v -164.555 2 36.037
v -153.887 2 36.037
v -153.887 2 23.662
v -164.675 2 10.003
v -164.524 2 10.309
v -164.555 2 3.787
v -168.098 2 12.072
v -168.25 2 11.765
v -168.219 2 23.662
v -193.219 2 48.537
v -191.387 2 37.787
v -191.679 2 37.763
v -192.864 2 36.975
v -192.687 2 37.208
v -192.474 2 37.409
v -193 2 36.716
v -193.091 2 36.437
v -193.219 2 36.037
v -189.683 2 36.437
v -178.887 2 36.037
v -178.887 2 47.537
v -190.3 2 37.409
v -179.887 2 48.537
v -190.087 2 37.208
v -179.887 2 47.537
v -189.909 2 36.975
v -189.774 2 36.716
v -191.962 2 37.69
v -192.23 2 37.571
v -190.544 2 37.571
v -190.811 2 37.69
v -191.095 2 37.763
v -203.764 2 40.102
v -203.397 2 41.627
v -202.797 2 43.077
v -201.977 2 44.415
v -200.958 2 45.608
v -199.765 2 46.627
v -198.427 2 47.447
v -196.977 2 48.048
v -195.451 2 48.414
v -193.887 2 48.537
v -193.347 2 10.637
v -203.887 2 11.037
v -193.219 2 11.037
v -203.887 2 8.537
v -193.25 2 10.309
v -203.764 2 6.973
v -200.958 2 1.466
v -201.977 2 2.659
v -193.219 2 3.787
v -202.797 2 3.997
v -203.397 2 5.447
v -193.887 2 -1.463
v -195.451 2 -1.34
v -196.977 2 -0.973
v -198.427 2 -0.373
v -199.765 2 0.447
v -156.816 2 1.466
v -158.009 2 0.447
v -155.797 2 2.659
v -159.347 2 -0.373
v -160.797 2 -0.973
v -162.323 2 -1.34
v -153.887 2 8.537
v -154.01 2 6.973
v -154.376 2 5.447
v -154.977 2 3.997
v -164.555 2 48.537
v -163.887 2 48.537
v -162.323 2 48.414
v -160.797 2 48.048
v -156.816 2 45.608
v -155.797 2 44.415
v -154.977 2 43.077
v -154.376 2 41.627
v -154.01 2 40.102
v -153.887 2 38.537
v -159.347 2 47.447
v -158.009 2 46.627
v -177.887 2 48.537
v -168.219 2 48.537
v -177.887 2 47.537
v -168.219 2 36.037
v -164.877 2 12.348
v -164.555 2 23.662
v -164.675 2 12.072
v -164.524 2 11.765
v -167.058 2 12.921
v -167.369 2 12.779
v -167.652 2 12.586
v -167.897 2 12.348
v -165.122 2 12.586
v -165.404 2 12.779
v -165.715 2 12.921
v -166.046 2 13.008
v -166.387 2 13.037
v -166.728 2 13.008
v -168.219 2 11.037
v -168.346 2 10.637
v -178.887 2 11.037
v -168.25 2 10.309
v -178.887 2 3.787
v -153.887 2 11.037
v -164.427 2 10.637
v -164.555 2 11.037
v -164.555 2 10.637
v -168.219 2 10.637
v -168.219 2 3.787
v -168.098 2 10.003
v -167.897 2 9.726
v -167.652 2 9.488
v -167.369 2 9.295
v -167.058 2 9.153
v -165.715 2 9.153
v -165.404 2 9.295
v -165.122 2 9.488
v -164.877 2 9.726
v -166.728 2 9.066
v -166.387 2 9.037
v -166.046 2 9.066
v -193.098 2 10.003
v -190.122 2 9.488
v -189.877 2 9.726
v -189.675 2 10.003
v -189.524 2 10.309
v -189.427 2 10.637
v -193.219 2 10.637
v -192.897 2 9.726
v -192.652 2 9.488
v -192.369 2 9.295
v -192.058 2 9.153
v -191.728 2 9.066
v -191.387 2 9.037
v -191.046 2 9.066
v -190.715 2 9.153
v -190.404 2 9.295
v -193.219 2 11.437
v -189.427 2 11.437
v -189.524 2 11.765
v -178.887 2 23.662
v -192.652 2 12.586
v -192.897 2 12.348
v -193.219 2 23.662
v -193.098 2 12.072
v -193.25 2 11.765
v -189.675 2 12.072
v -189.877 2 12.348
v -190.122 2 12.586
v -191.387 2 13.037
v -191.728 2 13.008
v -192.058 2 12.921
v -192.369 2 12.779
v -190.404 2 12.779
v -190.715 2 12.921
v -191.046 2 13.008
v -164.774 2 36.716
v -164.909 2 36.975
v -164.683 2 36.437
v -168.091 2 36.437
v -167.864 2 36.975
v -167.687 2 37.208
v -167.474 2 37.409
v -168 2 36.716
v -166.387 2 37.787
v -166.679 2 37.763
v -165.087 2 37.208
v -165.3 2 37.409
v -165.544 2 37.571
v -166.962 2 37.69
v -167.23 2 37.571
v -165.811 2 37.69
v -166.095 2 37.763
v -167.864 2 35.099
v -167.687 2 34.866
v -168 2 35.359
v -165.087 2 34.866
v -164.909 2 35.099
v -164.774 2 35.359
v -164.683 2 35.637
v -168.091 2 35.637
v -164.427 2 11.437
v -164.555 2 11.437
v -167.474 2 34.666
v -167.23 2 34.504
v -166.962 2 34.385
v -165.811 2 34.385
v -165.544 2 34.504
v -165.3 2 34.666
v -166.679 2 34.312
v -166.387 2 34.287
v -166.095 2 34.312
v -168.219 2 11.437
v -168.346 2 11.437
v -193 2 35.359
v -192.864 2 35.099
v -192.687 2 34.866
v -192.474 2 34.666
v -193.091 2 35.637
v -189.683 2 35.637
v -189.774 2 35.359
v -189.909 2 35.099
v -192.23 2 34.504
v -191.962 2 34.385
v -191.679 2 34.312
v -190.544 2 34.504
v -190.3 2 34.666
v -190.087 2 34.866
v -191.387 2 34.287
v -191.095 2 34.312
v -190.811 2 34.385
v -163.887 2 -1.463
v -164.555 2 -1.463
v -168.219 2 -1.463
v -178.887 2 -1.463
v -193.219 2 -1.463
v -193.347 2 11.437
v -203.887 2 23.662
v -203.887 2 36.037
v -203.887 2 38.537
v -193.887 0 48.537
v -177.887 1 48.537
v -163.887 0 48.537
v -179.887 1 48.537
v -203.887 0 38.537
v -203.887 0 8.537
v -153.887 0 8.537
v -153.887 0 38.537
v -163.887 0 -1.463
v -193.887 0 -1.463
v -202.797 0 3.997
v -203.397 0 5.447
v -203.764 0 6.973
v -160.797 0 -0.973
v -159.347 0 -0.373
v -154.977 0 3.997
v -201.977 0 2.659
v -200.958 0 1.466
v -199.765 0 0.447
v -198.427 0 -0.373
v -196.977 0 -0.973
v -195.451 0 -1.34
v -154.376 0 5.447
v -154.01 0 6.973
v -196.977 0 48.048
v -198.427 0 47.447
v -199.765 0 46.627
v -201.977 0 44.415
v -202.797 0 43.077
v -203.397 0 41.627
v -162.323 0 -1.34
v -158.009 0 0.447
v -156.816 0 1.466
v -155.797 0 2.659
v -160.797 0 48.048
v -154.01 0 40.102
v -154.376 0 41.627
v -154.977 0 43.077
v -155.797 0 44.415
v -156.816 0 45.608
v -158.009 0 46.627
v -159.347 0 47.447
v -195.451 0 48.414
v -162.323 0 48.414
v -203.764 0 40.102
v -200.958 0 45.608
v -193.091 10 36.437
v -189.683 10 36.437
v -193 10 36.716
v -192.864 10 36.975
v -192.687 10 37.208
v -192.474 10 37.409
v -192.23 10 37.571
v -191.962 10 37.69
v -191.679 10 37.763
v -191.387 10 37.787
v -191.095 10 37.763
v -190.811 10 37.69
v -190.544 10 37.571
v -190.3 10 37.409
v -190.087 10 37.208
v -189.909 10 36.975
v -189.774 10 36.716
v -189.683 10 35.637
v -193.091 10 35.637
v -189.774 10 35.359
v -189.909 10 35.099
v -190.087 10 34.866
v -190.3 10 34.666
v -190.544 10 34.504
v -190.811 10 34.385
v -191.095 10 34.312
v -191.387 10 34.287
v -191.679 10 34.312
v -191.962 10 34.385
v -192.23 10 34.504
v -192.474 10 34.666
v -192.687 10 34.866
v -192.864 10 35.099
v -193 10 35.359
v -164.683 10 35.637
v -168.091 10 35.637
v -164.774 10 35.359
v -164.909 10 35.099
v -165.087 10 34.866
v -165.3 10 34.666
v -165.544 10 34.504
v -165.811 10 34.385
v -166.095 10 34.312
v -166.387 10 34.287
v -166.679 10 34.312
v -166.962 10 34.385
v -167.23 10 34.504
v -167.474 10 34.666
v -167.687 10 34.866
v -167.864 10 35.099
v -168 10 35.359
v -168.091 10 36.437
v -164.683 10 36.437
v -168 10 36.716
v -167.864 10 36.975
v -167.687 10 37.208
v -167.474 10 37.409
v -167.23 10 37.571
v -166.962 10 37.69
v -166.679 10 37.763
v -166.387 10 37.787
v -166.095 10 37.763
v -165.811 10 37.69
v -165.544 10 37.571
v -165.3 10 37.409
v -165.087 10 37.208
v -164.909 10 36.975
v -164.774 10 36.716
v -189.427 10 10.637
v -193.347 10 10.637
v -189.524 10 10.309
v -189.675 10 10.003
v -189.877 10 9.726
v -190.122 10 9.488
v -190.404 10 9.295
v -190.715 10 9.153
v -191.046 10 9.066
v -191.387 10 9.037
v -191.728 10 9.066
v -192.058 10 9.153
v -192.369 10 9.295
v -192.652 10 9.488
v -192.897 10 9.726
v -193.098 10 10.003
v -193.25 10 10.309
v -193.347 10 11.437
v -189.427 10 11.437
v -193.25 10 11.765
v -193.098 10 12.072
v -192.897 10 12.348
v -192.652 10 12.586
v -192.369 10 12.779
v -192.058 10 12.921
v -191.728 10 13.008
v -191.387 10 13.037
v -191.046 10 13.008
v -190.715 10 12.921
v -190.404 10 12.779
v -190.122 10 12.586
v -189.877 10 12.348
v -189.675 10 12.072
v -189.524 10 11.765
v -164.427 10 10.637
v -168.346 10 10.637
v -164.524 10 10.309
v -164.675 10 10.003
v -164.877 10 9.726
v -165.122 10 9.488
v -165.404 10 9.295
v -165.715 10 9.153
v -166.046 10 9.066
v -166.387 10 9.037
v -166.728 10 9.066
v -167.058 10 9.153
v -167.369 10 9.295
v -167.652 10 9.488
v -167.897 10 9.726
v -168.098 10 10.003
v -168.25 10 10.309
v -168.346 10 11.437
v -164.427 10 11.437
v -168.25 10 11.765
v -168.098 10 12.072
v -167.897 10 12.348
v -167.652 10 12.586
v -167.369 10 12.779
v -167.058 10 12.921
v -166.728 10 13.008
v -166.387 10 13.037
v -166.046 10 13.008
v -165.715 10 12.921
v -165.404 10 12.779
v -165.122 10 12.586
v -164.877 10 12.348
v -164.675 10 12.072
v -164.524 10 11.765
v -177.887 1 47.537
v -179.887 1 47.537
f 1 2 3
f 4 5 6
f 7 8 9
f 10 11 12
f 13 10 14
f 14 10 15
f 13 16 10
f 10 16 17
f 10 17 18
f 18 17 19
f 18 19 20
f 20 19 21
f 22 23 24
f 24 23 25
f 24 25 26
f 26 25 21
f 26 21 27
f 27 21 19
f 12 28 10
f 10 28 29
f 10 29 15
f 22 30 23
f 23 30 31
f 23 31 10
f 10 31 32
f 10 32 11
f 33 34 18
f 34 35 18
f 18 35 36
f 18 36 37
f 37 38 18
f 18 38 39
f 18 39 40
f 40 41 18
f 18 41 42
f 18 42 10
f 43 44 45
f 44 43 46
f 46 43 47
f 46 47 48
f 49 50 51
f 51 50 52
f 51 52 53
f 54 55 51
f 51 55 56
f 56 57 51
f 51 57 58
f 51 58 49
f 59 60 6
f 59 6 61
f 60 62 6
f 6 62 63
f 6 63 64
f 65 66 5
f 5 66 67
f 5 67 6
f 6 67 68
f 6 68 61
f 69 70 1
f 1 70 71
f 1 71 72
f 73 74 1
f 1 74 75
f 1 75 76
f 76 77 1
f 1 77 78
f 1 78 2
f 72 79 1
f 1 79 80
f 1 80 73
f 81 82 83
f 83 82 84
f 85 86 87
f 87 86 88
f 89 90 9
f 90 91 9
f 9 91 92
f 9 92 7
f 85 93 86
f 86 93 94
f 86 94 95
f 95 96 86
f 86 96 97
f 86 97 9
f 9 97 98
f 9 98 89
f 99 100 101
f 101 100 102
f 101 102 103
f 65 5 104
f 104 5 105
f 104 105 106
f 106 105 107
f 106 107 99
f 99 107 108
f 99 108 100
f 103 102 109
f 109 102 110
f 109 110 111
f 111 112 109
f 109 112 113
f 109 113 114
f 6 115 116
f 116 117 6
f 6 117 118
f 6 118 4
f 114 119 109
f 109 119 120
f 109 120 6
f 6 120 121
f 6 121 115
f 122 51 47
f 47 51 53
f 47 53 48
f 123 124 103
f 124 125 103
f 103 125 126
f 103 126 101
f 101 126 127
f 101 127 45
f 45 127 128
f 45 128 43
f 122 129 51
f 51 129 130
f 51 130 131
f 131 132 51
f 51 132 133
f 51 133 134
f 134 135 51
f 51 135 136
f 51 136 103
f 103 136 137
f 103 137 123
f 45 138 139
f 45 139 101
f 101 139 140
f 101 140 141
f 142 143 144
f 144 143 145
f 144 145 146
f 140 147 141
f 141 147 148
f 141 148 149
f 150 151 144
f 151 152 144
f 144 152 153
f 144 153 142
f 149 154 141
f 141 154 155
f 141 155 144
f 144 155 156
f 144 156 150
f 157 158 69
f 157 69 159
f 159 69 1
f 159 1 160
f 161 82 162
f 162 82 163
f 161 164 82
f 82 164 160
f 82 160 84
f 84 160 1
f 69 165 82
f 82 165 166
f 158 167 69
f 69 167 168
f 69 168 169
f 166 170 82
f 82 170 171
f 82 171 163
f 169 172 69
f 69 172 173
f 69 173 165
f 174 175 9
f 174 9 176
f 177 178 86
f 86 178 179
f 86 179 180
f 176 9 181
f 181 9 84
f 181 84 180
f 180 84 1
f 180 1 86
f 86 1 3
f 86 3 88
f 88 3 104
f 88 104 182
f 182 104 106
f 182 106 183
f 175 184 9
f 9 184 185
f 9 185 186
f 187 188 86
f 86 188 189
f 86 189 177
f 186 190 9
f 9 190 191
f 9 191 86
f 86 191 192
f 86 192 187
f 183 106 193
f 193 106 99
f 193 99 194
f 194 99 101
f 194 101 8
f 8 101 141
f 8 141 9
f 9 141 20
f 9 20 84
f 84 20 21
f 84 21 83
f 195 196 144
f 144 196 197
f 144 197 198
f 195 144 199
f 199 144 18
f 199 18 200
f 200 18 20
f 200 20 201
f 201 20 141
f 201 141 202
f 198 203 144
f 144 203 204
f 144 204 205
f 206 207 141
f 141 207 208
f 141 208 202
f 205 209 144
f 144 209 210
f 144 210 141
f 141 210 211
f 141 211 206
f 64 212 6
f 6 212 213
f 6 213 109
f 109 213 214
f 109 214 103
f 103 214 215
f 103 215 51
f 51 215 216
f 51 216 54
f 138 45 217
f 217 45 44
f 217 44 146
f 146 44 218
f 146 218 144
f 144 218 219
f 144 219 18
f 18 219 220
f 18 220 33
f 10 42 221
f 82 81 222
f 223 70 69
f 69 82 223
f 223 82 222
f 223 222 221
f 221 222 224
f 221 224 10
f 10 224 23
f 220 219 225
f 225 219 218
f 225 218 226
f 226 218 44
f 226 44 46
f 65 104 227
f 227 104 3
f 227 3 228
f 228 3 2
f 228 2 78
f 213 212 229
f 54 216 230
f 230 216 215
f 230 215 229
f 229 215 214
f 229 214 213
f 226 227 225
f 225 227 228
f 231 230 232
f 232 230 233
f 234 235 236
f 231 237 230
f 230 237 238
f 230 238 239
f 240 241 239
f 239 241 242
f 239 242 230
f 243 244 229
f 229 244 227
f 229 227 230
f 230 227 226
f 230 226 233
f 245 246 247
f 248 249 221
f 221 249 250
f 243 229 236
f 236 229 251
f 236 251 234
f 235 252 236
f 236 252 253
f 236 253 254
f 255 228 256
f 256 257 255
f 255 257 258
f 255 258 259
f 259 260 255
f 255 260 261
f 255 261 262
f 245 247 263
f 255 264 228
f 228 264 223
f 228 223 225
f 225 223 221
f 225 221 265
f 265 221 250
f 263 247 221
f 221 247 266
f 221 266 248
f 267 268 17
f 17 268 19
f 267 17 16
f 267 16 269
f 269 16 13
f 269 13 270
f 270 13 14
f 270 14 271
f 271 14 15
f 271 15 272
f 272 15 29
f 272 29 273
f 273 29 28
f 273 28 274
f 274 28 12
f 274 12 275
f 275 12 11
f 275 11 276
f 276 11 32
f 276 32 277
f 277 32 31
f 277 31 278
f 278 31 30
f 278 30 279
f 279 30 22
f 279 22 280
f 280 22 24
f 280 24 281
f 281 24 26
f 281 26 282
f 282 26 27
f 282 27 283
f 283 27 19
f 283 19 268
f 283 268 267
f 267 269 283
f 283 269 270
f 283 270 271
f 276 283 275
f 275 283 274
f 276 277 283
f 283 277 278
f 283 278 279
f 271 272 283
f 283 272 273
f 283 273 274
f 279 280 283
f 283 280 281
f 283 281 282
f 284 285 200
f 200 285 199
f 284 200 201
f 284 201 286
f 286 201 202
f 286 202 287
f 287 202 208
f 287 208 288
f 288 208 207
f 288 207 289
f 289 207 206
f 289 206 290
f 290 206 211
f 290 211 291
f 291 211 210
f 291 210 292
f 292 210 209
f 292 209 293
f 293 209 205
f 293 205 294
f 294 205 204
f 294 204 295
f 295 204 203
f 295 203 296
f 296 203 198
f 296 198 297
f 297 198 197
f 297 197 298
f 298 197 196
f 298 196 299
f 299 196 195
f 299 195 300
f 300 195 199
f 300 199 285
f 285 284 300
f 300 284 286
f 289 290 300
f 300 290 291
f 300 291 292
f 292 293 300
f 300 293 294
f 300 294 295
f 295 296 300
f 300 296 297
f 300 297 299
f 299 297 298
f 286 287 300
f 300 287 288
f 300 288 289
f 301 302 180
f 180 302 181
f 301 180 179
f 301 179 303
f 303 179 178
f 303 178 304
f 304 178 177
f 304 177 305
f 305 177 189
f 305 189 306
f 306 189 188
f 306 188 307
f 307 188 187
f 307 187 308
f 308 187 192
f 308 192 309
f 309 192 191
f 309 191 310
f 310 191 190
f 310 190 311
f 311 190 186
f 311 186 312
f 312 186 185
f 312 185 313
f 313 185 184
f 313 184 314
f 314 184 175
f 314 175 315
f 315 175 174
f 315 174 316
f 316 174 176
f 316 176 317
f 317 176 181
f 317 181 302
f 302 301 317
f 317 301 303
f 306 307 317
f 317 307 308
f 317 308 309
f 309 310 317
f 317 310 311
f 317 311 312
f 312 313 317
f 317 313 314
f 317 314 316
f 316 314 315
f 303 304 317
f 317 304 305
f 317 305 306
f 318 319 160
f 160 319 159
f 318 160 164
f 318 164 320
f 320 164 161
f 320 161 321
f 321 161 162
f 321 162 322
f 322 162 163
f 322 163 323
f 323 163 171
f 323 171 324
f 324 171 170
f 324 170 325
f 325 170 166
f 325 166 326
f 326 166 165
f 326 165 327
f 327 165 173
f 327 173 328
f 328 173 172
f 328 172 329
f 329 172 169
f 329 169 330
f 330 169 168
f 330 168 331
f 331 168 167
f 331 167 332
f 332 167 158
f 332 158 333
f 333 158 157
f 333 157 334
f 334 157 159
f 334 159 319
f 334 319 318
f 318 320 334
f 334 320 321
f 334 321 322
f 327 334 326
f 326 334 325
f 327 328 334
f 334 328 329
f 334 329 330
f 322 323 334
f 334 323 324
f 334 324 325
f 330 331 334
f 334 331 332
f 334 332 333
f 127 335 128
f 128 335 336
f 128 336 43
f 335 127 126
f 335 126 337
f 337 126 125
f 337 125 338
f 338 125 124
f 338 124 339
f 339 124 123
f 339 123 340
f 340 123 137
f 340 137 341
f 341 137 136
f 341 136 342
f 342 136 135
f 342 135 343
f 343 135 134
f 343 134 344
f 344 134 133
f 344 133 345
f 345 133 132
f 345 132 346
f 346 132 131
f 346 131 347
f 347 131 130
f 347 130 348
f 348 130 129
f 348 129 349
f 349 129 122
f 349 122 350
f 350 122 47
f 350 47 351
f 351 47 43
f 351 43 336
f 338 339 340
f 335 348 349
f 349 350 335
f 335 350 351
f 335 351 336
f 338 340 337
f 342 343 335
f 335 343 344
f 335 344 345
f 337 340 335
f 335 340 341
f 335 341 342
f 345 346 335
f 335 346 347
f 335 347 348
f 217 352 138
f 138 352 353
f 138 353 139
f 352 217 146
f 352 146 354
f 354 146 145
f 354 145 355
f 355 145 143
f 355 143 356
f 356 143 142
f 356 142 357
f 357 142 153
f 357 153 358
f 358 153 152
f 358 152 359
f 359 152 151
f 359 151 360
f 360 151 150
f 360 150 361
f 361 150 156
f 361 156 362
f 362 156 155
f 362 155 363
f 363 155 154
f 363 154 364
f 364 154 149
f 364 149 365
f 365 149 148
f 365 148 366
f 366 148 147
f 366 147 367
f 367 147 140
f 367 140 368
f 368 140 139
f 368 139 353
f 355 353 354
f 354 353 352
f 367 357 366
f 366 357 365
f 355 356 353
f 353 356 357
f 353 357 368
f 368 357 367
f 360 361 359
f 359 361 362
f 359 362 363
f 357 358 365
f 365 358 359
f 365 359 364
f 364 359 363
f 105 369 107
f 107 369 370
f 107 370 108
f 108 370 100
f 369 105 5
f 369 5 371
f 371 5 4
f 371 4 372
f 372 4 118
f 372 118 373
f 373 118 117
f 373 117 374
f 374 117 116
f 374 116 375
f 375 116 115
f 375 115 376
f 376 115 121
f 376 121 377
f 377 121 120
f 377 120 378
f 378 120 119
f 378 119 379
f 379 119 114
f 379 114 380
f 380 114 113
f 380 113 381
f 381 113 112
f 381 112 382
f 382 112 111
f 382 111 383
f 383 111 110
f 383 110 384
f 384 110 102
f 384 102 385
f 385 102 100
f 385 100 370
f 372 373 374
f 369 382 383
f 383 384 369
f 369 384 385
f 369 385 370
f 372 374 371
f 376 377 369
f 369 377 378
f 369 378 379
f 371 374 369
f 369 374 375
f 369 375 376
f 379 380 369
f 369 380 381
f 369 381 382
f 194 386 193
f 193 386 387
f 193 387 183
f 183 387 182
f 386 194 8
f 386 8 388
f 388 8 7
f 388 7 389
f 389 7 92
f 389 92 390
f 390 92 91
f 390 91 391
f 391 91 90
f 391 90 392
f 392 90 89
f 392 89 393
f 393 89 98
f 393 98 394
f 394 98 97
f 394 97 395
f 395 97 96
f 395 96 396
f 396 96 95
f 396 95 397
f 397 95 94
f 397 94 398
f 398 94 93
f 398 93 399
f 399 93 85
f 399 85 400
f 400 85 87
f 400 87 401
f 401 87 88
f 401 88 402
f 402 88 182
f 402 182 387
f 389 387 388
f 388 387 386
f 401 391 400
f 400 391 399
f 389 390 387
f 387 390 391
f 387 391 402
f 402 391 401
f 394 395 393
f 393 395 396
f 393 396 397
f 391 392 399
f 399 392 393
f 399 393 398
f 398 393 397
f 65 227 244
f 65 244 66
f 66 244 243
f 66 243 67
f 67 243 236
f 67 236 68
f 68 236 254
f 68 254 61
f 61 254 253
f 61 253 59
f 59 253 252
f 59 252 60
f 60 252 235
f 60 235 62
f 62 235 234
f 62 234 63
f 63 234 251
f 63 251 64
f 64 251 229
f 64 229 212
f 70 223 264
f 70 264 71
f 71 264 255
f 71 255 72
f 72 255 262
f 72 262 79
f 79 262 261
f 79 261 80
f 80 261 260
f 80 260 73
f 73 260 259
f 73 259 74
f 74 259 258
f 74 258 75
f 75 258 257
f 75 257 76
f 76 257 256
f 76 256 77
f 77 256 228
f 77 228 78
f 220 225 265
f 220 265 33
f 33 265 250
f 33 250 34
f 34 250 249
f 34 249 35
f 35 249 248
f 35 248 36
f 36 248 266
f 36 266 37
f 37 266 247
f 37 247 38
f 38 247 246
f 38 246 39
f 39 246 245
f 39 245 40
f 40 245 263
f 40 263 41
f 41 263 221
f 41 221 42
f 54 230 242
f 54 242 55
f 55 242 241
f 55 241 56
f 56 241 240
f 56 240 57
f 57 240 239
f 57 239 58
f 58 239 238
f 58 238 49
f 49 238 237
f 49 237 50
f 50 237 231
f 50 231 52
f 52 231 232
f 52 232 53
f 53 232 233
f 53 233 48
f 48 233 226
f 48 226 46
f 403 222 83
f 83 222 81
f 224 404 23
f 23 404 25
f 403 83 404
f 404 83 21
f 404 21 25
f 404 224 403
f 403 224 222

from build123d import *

# Parameters (mm, degrees)
SKETCH1_W           = 50
SKETCH1_H           = 50
BOSS_EXTRUDE1_DEPTH = 2
BOSS_EXTRUDE2_DEPTH = 8
FILLET1_R           = 10
CUT_EXTRUDE1_DEPTH  = 1


with BuildPart() as part:
    # Sketch1 → Boss-Extrude1 (new body)
    with BuildSketch(Plane(origin=(0, 0, 0), x_dir=(1, 0, 0), z_dir=(0, 1, 0))):
        with Locations((-178.886902591, -23.537255169)):
            Rectangle(SKETCH1_W, SKETCH1_H)
    extrude(amount=BOSS_EXTRUDE1_DEPTH)

    # Sketch2 → Boss-Extrude2 (add)
    with BuildSketch(Plane(origin=(0, 2, 0), x_dir=(1, 0, 0), z_dir=(0, 1, 0))):
        with BuildLine():
            Line((-189.683230088, -36.437255169), (-193.090575095, -36.437255169))
            ThreePointArc((-193.090575095, -36.437255169), (-191.386902591, -37.787255169), (-189.683230088, -36.437255169))
        make_face()
        with BuildLine():
            Line((-193.090575095, -35.637255169), (-191.386902591, -35.637255169))
            Line((-191.386902591, -35.637255169), (-189.683230088, -35.637255169))
            ThreePointArc((-189.683230088, -35.637255169), (-191.386902591, -34.287255169), (-193.090575095, -35.637255169))
        make_face()
        with BuildLine():
            Line((-168.090575095, -35.637255169), (-166.386902591, -35.637255169))
            Line((-166.386902591, -35.637255169), (-164.683230088, -35.637255169))
            ThreePointArc((-164.683230088, -35.637255169), (-166.386902591, -34.287255169), (-168.090575095, -35.637255169))
        make_face()
        with BuildLine():
            Line((-164.683230088, -36.437255169), (-168.090575095, -36.437255169))
            ThreePointArc((-168.090575095, -36.437255169), (-166.386902591, -37.787255169), (-164.683230088, -36.437255169))
        make_face()
        with BuildLine():
            Line((-193.346494385, -10.637255169), (-191.386902591, -10.637255169))
            Line((-191.386902591, -10.637255169), (-189.427310797, -10.637255169))
            ThreePointArc((-189.427310797, -10.637255169), (-191.386902591, -9.037255169), (-193.346494385, -10.637255169))
        make_face()
        with BuildLine():
            Line((-189.427310797, -11.437255169), (-193.346494385, -11.437255169))
            ThreePointArc((-193.346494385, -11.437255169), (-191.386902591, -13.037255169), (-189.427310797, -11.437255169))
        make_face()
        with BuildLine():
            Line((-168.346494385, -10.637255169), (-166.386902591, -10.637255169))
            Line((-166.386902591, -10.637255169), (-164.427310797, -10.637255169))
            ThreePointArc((-164.427310797, -10.637255169), (-166.386902591, -9.037255169), (-168.346494385, -10.637255169))
        make_face()
        with BuildLine():
            Line((-164.427310797, -11.437255169), (-168.346494385, -11.437255169))
            ThreePointArc((-168.346494385, -11.437255169), (-166.386902591, -13.037255169), (-164.427310797, -11.437255169))
        make_face()
    extrude(amount=BOSS_EXTRUDE2_DEPTH)

    # Fillet1
    fillet1_edges = [part.edges().sort_by_distance(p)[0] for p in [
        (-203.886902591, 1, -1.462744831),
        (-153.886902591, 1, -1.462744831),
        (-153.886902591, 1, 48.537255169),
        (-203.886902591, 1, 48.537255169),
    ]]
    fillet(fillet1_edges, radius=FILLET1_R)

    # Sketch3 → Cut-Extrude1 (cut)
    with BuildSketch(Plane(origin=(0, 2, 0), x_dir=(1, 0, 0), z_dir=(0, 1, 0))):
        Polygon((-177.886902591, -47.537255169), (-178.886902591, -47.537255169), (-179.886902591, -47.537255169), (-179.886902591, -48.537255169), (-177.886902591, -48.537255169), align=None)
    extrude(amount=-CUT_EXTRUDE1_DEPTH, mode=Mode.SUBTRACT)


solid = part.part
